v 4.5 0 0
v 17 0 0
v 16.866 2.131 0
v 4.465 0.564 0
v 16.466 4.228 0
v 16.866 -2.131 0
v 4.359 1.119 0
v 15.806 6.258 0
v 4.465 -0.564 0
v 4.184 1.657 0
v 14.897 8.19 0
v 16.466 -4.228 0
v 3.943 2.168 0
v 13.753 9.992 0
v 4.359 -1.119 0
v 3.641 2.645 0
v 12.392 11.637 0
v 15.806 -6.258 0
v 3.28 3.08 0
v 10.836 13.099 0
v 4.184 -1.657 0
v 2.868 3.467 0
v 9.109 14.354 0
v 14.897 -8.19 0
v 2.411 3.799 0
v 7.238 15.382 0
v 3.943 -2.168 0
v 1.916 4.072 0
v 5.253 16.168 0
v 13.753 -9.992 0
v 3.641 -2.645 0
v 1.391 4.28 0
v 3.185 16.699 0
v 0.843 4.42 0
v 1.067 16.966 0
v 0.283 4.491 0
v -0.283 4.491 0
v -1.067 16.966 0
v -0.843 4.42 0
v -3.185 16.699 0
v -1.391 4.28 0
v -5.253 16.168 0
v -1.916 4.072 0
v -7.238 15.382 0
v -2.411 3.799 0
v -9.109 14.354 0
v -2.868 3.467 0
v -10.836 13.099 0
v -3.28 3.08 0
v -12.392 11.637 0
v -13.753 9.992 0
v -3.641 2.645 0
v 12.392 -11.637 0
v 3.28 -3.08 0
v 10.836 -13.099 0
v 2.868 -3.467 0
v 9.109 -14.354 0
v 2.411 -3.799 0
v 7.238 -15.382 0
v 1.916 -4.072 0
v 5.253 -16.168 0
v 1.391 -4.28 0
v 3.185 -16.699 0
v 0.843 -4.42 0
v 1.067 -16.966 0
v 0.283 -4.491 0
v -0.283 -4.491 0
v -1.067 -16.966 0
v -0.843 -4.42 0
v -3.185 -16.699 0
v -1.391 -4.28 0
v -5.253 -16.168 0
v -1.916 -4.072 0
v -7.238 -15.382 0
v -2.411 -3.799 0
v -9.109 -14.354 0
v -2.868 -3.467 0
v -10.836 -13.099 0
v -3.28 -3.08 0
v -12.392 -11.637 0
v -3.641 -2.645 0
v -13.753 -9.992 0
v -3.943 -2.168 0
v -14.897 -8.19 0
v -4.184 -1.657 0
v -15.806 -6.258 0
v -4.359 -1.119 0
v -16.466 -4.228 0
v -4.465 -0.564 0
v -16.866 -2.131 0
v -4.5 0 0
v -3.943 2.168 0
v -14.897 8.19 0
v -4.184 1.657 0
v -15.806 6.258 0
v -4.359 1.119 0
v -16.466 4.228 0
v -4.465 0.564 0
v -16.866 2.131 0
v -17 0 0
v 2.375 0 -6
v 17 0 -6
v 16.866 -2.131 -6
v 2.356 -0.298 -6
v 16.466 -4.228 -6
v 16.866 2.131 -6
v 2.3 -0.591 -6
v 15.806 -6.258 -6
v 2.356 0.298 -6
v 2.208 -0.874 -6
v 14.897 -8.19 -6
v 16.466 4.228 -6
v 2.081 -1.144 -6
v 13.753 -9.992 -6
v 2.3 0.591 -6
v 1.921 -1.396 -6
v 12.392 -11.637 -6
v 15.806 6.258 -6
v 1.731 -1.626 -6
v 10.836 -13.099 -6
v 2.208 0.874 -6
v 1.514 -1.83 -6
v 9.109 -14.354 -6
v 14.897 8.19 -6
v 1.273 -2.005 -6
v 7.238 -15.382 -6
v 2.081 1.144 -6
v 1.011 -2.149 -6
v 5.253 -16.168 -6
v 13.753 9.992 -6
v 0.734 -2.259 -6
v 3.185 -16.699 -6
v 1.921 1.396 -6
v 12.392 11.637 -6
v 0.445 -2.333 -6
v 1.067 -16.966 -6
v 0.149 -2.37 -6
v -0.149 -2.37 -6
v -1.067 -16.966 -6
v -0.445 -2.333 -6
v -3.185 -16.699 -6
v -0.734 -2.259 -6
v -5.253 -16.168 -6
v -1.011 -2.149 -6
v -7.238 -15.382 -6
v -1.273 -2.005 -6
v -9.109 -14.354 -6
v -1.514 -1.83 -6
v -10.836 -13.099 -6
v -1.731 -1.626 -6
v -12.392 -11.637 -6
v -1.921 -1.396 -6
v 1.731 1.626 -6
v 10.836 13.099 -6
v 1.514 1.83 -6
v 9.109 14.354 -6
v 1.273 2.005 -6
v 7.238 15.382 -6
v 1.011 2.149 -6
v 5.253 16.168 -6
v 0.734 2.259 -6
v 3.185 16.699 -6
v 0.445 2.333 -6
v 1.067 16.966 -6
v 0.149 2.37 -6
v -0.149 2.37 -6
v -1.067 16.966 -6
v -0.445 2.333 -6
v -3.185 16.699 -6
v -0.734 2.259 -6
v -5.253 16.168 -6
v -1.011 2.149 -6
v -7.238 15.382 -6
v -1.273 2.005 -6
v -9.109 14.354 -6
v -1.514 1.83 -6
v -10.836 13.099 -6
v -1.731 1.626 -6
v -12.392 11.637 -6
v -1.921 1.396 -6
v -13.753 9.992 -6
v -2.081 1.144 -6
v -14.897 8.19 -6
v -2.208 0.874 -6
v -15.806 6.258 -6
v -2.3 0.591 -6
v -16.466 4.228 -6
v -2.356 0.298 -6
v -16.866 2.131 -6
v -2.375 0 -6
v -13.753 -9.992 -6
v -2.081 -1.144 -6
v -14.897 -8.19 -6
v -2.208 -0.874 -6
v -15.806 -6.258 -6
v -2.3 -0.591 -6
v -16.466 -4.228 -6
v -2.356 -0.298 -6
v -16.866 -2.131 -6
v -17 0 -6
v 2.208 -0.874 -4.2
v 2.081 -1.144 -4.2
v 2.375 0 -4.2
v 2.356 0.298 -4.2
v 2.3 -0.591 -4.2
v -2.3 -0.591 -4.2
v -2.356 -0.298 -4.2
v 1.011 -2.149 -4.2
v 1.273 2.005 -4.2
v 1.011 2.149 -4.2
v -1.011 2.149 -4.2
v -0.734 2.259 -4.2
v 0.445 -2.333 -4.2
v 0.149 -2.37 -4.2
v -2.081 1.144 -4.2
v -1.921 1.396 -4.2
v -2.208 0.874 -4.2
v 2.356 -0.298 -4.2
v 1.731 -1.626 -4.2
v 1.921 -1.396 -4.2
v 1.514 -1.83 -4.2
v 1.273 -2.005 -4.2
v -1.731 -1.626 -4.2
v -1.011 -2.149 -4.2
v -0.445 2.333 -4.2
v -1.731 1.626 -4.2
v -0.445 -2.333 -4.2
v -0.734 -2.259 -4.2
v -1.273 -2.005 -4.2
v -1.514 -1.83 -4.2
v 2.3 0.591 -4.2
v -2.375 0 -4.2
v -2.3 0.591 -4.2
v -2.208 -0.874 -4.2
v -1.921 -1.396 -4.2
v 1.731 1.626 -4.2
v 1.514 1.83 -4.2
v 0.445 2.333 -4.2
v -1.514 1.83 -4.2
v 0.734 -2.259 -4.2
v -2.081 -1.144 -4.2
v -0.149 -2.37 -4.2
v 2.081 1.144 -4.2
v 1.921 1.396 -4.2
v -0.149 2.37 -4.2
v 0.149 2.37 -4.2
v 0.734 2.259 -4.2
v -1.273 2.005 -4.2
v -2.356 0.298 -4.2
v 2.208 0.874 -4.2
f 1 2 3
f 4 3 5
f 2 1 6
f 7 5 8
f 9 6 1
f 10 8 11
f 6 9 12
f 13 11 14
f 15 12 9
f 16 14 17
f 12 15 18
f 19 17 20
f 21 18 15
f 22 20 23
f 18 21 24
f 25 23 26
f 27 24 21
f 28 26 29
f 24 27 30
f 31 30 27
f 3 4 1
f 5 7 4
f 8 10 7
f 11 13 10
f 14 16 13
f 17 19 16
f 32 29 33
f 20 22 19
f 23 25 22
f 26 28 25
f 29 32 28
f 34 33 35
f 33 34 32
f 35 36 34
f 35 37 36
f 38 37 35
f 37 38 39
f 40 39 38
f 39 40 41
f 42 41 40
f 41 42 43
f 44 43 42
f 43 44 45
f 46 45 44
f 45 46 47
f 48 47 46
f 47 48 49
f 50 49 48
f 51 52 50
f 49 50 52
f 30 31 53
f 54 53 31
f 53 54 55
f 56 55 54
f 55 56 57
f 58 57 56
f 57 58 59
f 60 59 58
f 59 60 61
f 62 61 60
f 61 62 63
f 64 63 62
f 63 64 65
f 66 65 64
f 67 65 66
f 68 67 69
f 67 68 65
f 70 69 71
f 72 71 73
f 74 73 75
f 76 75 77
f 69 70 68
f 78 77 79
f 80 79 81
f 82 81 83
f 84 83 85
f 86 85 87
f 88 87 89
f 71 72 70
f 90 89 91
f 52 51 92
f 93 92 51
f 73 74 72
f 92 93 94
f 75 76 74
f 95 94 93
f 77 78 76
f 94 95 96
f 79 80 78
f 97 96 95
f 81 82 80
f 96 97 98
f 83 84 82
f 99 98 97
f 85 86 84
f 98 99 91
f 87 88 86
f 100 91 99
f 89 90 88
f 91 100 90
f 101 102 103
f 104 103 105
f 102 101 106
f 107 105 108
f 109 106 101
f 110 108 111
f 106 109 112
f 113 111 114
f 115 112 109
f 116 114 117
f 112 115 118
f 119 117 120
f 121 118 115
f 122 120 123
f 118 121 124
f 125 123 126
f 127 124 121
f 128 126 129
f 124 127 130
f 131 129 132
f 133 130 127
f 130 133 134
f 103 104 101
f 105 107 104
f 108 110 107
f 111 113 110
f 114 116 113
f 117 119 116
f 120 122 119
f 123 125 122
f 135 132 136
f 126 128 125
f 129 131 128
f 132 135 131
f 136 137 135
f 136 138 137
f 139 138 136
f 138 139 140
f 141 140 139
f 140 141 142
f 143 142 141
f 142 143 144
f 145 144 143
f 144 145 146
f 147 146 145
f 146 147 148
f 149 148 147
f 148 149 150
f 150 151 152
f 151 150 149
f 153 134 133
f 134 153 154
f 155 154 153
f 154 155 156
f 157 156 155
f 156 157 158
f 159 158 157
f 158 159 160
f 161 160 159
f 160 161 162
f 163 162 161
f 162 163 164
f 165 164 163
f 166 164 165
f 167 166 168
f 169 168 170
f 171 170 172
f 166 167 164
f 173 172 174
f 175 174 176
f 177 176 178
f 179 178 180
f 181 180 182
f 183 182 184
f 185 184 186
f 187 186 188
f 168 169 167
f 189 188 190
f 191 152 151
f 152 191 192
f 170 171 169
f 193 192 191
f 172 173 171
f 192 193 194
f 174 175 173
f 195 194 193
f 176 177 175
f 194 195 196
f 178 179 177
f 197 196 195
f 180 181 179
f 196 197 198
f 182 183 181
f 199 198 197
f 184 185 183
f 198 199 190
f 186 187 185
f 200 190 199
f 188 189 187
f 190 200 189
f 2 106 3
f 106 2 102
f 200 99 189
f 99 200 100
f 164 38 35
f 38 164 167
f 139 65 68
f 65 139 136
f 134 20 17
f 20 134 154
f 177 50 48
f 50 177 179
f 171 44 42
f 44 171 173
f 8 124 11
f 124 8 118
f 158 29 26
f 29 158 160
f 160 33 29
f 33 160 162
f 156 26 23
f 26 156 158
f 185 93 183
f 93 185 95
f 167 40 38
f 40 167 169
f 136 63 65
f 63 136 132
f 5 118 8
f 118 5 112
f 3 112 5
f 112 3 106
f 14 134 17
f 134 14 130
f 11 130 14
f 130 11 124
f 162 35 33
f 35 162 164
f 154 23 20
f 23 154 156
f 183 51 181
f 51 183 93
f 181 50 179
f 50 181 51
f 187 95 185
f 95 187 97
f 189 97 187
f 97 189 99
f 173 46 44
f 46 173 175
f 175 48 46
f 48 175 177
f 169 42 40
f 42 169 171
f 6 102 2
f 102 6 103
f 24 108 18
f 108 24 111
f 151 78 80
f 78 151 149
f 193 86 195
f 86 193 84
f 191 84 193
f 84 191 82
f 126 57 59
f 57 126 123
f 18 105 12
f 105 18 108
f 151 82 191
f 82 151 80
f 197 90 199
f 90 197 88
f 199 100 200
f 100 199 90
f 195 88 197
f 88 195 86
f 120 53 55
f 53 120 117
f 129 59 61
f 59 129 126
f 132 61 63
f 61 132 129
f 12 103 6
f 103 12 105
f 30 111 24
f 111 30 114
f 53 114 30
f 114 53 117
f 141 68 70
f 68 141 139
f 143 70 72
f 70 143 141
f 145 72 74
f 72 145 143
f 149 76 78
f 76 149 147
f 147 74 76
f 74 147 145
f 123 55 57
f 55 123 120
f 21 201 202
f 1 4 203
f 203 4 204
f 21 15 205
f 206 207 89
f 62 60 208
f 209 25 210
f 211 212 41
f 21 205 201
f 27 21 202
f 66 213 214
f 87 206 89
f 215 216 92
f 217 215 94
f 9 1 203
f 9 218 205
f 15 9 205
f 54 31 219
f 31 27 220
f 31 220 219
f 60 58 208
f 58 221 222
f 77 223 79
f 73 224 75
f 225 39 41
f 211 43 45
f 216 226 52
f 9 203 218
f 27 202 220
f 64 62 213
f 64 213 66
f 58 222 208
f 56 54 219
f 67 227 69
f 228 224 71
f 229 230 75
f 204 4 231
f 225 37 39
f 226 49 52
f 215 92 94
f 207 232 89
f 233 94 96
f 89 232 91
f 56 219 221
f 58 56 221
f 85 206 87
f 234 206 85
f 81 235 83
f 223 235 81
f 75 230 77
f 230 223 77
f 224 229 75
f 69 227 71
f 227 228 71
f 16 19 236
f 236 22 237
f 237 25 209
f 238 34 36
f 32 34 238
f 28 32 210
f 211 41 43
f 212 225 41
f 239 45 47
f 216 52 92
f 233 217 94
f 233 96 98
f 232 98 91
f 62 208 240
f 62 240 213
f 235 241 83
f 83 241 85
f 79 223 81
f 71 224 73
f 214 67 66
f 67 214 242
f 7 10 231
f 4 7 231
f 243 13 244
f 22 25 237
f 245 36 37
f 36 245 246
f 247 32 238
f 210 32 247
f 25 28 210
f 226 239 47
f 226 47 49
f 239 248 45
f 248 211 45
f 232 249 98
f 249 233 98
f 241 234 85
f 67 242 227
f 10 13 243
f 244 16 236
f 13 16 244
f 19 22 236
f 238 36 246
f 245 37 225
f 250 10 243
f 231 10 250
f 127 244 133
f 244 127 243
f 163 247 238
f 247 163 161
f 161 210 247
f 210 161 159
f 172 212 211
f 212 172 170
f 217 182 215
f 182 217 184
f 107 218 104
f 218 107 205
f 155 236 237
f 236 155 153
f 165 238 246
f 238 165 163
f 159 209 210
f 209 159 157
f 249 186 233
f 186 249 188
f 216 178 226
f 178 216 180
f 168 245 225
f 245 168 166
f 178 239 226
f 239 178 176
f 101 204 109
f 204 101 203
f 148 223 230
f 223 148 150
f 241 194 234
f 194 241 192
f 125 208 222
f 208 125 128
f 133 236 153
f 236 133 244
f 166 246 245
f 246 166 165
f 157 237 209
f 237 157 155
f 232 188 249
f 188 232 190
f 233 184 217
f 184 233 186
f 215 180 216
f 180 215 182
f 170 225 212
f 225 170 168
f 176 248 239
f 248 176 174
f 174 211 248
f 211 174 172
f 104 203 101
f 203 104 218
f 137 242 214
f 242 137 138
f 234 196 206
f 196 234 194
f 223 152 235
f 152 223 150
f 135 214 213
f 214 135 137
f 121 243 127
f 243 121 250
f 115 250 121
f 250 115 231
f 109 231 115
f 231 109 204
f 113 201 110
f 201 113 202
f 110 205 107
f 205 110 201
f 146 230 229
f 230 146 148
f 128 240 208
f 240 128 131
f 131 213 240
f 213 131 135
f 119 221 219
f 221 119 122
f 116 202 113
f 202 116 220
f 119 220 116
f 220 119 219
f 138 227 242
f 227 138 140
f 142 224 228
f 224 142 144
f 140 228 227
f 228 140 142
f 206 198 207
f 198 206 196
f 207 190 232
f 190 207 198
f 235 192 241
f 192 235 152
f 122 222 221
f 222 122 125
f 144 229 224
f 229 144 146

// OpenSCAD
$fn = 50;


difference() {
	union() {
		translate(v = [0, 0, -6.0000000000]) {
			cylinder(h = 6, r = 7.0000000000);
		}
		translate(v = [0, 0, -6.0000000000]) {
			cylinder(h = 6, r = 17.0000000000);
		}
	}
	union() {
		translate(v = [0, 0, 0]) {
			rotate(a = [0, 0, 0]) {
				difference() {
					union() {
						#translate(v = [0, 0, -6.0000000000]) {
							cylinder(h = 6, r = 2.2500000000);
						}
						#translate(v = [0, 0, -4.2000000000]) {
							cylinder(h = 4.2000000000, r = 7.0000000000, r1 = 2.3750000000, r2 = 4.5000000000);
						}
						#translate(v = [0, 0, -6.0000000000]) {
							cylinder(h = 6, r = 2.3750000000);
						}
						#translate(v = [0, 0, -6.0000000000]) {
							cylinder(h = 6, r = 2.2500000000);
						}
					}
					union();
				}
			}
		}
	}
}
